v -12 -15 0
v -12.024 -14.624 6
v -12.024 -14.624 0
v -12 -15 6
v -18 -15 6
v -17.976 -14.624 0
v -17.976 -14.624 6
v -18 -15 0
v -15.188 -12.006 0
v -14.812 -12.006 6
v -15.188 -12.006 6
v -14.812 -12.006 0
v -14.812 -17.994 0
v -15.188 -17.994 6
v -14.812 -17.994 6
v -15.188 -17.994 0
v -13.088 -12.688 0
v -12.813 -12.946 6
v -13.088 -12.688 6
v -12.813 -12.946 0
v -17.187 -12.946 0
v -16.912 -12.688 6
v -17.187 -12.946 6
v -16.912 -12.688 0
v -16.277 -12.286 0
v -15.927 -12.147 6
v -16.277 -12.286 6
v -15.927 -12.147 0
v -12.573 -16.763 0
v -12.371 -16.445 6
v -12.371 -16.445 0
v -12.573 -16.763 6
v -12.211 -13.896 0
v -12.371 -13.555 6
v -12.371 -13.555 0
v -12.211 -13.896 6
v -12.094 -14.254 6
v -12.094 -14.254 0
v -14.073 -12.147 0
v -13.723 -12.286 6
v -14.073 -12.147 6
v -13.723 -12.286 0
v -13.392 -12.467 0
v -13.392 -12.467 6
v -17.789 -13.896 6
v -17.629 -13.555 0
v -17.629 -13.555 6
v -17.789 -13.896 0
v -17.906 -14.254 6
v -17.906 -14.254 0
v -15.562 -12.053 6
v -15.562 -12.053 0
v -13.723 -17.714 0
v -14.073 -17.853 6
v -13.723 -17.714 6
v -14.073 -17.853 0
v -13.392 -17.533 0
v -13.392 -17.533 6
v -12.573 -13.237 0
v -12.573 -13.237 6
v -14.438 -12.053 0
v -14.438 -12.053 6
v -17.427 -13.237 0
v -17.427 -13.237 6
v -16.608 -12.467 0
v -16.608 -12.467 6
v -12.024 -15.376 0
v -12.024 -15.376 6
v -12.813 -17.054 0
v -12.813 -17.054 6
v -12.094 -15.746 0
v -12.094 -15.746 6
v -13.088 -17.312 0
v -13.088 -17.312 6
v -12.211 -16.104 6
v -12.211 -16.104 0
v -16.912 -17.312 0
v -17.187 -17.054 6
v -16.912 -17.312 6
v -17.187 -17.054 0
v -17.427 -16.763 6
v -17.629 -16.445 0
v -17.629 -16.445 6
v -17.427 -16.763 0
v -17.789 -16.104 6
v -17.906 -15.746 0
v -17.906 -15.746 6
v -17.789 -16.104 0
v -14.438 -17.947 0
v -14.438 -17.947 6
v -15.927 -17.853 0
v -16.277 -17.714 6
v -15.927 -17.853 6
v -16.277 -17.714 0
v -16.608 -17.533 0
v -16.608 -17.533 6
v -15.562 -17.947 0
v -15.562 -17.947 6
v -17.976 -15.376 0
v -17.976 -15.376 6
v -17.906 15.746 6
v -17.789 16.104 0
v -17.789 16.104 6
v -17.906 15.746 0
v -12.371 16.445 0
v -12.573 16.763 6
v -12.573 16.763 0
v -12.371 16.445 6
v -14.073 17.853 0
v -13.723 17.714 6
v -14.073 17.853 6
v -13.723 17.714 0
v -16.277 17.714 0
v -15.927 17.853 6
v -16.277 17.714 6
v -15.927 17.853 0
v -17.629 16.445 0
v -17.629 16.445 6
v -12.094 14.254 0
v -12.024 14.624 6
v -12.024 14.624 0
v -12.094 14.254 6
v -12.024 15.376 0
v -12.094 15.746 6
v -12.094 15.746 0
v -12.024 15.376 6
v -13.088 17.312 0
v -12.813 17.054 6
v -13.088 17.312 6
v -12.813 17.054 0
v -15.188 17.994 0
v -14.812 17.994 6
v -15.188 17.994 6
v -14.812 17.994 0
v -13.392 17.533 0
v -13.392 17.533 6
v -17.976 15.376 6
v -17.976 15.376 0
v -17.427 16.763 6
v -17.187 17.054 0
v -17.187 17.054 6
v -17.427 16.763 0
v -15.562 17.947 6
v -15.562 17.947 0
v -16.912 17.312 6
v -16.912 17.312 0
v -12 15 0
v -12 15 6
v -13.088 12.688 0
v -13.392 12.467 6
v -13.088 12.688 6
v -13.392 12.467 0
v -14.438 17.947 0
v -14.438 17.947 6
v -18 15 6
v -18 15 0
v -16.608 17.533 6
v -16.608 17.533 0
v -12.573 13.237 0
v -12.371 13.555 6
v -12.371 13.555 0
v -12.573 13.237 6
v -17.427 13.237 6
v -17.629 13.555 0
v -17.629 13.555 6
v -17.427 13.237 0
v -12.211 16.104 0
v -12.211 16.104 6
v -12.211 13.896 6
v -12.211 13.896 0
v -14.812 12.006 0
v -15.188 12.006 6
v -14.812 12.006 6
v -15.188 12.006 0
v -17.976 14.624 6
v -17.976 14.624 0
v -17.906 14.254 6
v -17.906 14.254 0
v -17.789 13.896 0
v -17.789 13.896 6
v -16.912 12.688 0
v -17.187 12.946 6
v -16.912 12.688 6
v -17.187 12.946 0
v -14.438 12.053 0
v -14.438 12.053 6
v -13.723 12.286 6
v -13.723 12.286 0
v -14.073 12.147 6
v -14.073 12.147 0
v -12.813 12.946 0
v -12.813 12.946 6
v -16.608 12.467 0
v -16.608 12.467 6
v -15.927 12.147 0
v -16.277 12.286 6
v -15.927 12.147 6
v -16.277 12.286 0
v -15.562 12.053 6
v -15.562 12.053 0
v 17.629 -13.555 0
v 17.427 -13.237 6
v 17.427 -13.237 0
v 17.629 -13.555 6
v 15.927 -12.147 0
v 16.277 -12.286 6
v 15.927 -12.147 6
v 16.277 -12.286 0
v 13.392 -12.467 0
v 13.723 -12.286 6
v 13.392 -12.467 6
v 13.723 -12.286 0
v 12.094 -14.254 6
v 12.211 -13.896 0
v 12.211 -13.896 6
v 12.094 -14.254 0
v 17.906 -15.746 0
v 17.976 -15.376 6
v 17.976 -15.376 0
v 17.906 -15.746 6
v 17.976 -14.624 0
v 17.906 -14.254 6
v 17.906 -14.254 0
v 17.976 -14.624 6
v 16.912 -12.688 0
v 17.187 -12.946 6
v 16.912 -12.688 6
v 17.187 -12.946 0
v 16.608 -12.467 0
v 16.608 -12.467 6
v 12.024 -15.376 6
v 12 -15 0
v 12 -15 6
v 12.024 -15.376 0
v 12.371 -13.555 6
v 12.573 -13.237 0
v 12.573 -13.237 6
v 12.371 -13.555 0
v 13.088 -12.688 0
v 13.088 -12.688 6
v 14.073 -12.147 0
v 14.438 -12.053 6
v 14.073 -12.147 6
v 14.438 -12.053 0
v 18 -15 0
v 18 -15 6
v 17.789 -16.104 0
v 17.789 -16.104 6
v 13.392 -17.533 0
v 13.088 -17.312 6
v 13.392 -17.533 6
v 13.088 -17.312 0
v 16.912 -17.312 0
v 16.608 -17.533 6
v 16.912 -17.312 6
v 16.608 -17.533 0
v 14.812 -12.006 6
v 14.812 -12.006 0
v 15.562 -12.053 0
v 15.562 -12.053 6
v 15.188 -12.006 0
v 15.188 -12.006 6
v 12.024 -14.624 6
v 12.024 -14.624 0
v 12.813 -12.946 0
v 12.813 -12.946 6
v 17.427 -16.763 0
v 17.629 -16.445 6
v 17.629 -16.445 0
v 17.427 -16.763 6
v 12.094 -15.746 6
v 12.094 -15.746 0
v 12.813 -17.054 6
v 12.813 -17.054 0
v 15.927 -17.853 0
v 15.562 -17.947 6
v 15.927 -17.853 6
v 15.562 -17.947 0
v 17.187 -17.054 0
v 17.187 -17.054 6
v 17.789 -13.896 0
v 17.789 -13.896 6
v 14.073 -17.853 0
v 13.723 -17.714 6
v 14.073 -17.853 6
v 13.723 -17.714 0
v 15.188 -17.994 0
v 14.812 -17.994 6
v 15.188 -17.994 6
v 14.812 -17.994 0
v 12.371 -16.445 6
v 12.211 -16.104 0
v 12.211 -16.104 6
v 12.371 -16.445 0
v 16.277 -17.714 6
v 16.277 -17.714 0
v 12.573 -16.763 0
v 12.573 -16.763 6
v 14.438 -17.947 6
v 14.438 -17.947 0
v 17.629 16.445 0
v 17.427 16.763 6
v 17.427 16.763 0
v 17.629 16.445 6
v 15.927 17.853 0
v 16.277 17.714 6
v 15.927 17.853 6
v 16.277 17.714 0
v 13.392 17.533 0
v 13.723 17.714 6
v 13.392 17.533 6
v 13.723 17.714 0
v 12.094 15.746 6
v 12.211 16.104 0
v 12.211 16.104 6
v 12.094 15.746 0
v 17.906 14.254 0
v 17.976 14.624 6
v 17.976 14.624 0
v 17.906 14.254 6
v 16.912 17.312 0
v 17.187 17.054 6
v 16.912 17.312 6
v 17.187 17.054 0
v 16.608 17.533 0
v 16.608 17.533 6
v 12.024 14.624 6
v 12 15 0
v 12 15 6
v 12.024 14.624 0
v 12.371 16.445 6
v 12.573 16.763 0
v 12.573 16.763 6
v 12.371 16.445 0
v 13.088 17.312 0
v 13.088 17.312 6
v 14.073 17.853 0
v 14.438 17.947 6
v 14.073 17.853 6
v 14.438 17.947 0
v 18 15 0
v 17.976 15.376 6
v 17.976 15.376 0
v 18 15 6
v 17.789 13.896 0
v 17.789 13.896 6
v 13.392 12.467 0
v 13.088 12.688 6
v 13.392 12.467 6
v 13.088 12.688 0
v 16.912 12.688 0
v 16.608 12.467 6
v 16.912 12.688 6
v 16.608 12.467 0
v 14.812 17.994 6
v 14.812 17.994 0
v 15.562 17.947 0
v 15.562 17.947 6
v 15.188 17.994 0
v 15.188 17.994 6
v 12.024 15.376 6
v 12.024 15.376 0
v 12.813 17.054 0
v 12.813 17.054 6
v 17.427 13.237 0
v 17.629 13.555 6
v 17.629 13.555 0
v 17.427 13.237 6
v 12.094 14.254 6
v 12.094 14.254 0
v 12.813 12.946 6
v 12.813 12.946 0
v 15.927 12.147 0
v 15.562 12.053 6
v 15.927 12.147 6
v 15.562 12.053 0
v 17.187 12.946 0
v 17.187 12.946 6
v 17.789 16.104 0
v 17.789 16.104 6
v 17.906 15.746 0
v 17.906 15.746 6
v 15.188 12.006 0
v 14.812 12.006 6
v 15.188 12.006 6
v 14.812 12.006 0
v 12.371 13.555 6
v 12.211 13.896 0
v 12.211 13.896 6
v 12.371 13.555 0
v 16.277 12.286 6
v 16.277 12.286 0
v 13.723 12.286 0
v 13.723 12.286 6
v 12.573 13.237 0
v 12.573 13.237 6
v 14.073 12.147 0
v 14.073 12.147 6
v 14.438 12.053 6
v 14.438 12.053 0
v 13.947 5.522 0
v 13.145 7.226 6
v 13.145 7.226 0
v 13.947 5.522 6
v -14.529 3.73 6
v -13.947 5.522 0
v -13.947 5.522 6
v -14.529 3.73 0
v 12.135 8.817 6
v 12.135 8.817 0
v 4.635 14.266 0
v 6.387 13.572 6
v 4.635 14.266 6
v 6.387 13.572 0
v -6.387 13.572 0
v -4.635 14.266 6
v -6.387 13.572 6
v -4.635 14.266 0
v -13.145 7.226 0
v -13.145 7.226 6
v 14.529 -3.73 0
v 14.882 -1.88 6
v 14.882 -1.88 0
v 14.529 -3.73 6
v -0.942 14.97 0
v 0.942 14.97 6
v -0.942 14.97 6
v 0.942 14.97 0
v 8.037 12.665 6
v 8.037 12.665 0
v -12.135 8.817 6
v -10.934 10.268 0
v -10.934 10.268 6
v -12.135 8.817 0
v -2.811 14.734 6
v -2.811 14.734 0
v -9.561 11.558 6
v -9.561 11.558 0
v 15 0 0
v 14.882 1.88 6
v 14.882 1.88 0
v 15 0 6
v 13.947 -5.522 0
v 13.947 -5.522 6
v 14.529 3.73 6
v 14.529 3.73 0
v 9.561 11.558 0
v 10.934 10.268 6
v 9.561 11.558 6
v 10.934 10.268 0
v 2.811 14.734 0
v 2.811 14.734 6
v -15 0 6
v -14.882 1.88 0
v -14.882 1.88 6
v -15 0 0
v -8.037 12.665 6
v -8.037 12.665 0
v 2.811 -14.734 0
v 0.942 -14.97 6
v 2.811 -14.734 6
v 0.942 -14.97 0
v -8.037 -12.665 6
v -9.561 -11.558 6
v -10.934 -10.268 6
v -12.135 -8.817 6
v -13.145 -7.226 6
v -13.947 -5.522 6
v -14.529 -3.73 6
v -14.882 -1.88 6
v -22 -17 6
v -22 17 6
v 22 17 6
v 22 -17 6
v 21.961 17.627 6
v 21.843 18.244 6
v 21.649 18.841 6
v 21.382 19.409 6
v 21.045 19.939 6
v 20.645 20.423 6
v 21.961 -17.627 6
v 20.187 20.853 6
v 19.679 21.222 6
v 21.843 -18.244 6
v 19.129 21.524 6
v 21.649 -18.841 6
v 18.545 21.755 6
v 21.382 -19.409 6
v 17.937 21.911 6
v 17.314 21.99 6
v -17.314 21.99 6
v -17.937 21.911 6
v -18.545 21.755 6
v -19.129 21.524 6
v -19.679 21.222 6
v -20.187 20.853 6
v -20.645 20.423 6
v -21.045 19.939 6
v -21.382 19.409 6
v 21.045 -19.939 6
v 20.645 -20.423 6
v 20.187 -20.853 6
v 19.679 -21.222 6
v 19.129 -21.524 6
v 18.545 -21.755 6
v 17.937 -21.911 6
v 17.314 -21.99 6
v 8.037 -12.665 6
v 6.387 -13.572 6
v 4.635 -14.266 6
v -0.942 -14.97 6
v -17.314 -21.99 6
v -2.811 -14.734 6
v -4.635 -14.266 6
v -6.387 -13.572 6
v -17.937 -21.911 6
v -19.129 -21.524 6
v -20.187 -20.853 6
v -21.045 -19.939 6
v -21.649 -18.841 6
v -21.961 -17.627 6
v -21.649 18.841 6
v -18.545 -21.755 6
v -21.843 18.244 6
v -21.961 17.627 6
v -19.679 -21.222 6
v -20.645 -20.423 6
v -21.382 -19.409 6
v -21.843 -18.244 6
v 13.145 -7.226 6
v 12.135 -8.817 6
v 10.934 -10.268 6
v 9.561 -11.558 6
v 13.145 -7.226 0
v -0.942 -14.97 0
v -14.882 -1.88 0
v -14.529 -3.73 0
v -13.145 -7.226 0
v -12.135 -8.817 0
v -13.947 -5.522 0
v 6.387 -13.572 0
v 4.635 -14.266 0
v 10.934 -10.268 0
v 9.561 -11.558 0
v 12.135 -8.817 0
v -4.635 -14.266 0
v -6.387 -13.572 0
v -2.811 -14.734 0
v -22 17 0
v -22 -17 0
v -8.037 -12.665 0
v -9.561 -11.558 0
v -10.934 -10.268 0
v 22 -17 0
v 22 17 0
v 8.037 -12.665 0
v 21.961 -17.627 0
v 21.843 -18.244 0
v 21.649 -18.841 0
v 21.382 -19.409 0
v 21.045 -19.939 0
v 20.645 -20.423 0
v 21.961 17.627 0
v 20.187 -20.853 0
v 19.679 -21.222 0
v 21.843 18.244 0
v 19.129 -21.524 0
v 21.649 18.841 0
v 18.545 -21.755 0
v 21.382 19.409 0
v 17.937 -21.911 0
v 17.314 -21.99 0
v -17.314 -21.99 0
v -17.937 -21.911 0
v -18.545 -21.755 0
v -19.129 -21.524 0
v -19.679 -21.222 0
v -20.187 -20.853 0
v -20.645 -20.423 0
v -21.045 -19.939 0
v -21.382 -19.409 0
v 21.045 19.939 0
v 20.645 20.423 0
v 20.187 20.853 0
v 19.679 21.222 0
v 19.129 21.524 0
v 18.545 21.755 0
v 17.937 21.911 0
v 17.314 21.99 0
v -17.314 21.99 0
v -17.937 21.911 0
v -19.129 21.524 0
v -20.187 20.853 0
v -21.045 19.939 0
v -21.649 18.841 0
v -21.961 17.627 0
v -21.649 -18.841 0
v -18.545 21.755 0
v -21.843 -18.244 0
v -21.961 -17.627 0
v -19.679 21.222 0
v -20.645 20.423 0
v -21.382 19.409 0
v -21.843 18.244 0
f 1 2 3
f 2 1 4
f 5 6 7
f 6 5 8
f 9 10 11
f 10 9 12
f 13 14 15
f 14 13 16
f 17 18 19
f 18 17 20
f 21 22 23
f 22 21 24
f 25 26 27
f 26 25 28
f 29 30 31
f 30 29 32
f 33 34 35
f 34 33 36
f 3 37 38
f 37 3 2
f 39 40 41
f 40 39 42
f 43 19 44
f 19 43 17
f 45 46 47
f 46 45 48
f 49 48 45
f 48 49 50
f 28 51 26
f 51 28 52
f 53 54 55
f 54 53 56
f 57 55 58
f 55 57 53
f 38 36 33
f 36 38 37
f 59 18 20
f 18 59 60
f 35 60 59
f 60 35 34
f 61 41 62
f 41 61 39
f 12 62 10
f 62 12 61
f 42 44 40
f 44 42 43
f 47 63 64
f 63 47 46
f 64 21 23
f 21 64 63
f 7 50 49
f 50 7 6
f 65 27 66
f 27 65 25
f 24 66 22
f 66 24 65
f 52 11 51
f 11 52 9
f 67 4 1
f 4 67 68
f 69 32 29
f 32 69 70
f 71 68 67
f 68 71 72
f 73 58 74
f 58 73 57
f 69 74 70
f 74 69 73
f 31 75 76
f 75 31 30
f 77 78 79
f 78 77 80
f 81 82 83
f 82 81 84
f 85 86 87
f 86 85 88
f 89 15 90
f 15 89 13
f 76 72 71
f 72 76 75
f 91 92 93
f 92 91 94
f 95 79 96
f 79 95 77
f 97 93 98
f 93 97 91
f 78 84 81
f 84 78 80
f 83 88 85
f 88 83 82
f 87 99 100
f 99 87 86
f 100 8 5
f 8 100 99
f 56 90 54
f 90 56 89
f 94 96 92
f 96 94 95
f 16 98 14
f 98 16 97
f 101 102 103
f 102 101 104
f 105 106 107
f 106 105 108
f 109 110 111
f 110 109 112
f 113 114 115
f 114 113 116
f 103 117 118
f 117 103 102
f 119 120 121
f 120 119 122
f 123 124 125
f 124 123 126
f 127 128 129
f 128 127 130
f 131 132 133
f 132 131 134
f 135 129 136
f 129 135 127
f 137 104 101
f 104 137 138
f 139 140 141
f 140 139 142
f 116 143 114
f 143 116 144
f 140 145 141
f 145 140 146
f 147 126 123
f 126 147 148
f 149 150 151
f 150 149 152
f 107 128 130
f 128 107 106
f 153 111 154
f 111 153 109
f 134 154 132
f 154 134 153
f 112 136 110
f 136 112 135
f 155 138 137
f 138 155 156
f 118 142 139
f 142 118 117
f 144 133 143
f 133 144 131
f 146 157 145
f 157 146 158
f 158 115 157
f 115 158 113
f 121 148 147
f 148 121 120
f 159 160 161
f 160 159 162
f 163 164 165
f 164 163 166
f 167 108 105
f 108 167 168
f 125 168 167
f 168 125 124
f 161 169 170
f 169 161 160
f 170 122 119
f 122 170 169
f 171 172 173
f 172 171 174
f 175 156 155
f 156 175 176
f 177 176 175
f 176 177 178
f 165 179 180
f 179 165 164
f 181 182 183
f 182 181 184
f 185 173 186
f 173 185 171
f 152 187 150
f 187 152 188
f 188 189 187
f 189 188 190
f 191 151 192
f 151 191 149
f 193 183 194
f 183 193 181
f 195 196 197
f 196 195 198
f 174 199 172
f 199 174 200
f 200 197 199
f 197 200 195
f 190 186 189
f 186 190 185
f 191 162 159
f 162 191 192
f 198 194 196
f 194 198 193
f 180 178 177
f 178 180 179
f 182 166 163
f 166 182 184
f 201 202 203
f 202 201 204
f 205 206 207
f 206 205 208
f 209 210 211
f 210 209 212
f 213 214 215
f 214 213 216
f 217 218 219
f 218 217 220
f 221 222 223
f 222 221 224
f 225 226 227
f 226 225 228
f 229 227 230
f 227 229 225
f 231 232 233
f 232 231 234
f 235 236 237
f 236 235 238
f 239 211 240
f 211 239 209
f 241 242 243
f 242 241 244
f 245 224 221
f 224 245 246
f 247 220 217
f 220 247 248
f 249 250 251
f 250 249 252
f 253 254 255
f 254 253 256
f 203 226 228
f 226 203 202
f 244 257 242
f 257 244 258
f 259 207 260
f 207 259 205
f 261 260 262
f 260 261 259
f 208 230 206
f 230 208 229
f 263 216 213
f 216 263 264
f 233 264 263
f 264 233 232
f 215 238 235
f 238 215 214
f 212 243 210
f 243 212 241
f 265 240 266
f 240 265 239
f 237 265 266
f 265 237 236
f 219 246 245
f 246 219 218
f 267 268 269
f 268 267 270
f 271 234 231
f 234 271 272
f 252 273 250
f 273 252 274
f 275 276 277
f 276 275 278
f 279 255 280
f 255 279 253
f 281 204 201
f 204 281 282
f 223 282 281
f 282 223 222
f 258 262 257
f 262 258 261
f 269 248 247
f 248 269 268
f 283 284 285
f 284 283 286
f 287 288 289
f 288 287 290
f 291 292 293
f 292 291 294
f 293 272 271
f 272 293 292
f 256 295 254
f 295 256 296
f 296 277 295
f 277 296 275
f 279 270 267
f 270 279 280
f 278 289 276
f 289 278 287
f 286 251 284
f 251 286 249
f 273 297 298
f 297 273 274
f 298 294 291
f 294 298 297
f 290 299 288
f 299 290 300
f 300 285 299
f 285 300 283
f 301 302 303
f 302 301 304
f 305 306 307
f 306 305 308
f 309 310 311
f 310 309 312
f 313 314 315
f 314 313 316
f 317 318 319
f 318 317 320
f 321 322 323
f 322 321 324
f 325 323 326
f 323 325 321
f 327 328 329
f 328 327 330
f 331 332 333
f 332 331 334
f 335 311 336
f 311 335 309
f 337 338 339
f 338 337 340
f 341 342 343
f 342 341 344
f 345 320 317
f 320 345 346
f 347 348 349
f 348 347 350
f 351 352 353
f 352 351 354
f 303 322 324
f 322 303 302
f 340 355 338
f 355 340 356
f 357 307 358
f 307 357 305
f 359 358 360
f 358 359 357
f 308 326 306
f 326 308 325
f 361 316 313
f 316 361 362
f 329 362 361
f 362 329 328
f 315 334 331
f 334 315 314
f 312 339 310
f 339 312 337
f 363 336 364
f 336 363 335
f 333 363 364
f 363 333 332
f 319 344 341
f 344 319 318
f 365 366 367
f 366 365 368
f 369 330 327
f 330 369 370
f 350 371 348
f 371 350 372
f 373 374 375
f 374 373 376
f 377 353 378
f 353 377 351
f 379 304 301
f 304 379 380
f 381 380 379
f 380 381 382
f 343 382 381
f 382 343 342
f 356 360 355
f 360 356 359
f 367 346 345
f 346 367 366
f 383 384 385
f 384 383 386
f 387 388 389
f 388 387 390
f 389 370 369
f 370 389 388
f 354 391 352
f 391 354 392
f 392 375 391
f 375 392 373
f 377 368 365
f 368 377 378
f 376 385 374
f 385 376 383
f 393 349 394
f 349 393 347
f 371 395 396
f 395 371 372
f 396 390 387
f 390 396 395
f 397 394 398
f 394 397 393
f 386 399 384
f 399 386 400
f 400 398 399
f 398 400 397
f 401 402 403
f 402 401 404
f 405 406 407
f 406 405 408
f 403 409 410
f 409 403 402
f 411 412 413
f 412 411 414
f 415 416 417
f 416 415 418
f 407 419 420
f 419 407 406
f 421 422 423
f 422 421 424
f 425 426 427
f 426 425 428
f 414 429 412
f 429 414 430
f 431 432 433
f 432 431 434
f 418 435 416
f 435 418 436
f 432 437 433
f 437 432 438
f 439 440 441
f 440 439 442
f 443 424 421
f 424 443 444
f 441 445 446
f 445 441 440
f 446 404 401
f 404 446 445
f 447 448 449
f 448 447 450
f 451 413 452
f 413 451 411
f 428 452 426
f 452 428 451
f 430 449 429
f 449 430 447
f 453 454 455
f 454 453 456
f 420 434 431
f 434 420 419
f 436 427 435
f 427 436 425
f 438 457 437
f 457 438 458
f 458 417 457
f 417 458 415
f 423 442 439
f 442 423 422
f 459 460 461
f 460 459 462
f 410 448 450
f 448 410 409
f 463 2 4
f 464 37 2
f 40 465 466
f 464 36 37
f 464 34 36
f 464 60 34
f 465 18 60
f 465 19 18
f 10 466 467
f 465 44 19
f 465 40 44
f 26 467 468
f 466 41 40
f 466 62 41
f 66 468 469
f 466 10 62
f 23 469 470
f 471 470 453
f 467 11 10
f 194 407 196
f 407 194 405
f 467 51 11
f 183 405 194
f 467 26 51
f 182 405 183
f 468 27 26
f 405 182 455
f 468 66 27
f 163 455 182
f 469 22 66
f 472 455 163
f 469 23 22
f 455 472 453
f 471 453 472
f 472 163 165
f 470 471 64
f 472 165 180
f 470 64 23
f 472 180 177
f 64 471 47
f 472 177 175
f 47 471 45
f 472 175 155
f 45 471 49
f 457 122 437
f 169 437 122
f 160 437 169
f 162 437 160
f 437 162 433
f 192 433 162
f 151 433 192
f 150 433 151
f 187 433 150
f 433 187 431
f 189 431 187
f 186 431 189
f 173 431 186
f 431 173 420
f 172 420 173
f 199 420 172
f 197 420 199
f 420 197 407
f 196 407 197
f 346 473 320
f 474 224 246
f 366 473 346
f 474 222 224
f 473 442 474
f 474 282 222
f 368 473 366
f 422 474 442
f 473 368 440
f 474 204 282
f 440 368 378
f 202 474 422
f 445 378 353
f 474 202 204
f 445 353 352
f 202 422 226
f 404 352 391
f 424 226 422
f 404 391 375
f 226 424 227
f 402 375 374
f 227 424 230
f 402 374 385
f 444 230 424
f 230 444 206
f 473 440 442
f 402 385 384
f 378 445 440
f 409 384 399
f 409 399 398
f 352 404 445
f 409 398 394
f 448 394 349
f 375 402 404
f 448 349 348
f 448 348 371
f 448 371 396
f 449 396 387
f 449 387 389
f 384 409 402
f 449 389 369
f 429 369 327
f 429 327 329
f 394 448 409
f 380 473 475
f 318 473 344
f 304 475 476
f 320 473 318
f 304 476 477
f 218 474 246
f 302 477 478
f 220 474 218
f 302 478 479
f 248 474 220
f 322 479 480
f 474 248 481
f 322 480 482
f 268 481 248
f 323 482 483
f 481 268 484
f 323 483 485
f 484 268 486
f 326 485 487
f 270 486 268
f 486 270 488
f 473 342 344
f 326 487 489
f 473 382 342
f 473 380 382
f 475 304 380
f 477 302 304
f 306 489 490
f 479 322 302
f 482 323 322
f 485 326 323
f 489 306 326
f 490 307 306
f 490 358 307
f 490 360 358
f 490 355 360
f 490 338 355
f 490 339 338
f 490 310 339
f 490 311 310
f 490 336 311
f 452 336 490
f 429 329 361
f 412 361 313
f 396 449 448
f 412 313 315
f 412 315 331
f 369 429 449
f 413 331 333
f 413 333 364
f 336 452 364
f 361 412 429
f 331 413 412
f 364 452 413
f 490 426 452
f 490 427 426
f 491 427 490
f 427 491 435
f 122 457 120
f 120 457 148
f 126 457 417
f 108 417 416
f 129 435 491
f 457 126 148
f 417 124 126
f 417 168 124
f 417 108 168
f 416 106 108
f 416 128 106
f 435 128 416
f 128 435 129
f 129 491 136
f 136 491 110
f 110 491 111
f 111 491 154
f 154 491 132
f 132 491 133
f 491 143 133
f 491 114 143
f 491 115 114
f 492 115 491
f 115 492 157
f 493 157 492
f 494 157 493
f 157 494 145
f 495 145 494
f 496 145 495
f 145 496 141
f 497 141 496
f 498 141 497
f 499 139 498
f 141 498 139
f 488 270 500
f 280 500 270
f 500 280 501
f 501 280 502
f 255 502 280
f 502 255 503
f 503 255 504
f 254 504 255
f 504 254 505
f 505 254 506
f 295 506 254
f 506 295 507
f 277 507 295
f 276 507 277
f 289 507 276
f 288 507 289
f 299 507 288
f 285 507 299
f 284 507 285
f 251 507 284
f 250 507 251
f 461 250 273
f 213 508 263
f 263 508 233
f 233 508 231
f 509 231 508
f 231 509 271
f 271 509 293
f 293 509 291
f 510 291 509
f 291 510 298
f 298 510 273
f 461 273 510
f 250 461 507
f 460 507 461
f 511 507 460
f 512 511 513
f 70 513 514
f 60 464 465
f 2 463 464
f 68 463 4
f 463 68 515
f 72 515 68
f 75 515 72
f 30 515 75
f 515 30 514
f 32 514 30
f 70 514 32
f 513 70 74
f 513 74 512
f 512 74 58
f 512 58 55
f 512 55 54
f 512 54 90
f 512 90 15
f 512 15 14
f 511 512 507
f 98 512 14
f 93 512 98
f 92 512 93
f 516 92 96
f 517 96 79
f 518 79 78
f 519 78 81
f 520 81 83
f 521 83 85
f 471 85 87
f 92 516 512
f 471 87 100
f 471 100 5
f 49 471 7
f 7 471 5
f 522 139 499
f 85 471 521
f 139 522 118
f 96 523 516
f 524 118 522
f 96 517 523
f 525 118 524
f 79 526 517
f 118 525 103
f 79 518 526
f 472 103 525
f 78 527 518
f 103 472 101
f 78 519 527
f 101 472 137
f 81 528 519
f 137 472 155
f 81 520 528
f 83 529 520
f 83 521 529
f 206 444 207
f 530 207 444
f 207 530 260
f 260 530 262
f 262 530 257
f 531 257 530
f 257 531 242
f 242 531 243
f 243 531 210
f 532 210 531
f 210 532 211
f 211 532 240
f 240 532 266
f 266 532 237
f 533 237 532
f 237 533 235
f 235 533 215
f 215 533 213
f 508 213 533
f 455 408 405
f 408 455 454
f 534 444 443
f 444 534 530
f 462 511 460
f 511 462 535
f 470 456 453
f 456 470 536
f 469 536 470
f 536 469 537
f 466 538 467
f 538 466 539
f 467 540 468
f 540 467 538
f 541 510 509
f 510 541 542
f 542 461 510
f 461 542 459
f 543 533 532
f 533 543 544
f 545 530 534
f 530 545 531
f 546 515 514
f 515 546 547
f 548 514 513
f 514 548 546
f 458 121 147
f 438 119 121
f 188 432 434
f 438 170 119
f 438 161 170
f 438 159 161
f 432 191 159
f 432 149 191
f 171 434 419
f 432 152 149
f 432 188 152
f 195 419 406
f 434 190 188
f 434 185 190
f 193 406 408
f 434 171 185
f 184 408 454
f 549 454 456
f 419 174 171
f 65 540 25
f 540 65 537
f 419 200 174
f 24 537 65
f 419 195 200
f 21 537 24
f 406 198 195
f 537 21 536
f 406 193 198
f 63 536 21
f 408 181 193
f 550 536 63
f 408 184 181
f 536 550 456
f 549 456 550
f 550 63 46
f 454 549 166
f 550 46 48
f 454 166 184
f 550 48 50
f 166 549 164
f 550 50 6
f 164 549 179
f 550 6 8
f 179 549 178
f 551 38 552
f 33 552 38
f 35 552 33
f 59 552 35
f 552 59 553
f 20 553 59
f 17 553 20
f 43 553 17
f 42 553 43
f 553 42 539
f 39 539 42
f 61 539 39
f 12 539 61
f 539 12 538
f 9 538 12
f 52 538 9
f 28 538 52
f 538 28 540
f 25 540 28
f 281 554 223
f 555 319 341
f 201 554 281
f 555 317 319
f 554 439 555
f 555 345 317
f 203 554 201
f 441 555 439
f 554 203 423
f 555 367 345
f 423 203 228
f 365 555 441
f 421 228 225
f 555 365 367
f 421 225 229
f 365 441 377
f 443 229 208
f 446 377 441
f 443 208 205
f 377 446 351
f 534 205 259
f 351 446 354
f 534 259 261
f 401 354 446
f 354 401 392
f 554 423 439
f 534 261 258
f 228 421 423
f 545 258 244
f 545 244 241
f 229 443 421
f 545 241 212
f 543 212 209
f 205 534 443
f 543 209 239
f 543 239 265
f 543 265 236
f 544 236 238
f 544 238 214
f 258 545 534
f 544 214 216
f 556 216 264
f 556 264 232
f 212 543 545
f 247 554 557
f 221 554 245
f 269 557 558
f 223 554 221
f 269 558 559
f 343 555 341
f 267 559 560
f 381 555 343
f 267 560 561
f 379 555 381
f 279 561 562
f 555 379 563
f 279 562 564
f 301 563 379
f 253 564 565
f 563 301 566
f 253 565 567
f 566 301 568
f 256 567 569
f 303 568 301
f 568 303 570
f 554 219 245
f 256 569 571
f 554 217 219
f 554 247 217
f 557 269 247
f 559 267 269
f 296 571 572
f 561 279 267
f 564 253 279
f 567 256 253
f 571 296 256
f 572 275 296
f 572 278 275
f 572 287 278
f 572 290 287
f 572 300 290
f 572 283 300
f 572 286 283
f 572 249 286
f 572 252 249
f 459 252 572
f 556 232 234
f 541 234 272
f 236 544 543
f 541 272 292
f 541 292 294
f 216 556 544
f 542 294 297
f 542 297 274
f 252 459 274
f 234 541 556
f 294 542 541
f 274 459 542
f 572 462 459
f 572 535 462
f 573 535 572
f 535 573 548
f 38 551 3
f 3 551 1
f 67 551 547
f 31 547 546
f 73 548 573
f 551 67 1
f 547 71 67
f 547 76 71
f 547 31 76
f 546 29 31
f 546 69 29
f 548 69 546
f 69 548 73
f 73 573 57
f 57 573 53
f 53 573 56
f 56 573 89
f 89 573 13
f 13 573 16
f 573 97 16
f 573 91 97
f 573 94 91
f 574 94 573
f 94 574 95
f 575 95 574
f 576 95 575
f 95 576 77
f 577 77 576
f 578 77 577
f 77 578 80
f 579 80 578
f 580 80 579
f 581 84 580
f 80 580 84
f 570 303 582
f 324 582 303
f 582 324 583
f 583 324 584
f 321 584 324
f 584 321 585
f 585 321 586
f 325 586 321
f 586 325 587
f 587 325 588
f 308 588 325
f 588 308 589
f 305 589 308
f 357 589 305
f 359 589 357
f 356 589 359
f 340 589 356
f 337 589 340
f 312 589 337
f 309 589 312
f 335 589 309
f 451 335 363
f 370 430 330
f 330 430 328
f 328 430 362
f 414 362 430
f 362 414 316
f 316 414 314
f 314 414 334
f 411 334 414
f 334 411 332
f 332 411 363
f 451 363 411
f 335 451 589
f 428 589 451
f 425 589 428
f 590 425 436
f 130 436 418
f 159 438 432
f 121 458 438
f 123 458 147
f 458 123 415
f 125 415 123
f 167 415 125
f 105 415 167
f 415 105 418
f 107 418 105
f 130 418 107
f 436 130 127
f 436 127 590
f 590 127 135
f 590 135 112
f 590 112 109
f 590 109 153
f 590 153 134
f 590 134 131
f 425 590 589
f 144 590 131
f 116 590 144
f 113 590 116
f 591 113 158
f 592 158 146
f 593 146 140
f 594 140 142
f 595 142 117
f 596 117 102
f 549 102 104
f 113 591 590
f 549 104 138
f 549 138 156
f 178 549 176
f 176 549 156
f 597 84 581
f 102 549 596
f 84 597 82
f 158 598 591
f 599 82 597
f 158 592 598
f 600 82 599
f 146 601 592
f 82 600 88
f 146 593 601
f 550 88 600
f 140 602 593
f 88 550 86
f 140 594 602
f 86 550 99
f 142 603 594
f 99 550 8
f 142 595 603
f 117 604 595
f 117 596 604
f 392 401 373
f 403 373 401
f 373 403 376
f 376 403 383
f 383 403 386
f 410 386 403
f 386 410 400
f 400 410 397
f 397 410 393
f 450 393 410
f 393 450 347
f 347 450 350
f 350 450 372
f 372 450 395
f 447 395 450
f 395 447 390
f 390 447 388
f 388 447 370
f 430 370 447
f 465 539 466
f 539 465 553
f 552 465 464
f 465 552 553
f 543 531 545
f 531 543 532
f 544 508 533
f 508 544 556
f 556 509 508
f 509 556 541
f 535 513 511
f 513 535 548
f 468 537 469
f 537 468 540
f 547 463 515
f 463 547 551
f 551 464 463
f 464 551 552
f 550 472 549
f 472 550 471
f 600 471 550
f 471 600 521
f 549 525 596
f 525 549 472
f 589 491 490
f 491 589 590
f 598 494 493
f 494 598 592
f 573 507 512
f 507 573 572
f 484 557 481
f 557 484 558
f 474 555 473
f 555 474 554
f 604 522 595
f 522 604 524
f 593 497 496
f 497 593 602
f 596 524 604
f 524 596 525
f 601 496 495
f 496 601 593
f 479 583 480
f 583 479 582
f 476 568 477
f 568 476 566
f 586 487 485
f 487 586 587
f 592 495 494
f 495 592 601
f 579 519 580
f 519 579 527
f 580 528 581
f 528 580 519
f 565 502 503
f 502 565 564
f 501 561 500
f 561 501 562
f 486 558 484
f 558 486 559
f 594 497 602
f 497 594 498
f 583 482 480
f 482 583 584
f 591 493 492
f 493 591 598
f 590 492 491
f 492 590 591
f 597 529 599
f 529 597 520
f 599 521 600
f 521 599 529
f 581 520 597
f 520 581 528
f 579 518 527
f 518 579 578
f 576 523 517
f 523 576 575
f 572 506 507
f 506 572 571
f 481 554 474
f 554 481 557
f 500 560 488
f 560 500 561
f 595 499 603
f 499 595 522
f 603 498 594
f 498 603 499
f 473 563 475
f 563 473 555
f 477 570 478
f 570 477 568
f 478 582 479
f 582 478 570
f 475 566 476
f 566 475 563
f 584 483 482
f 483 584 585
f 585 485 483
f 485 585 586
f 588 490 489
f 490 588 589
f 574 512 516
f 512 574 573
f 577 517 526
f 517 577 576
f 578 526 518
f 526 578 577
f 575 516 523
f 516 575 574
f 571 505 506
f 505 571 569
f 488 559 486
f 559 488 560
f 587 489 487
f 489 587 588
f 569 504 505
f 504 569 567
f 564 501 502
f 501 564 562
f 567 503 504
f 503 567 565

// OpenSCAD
$fn = 50;


difference() {
	union() {
		hull() {
			translate(v = [-17.0000000000, 17.0000000000, 0]) {
				cylinder(h = 6, r = 5);
			}
			translate(v = [17.0000000000, 17.0000000000, 0]) {
				cylinder(h = 6, r = 5);
			}
			translate(v = [-17.0000000000, -17.0000000000, 0]) {
				cylinder(h = 6, r = 5);
			}
			translate(v = [17.0000000000, -17.0000000000, 0]) {
				cylinder(h = 6, r = 5);
			}
		}
	}
	union() {
		#translate(v = [-15.0000000000, -15.0000000000, -100.0000000000]) {
			cylinder(h = 200, r = 3.0000000000);
		}
		#translate(v = [-15.0000000000, 15.0000000000, -100.0000000000]) {
			cylinder(h = 200, r = 3.0000000000);
		}
		#translate(v = [15.0000000000, -15.0000000000, -100.0000000000]) {
			cylinder(h = 200, r = 3.0000000000);
		}
		#translate(v = [15.0000000000, 15.0000000000, -100.0000000000]) {
			cylinder(h = 200, r = 3.0000000000);
		}
		#cylinder(h = 6, r = 15.0000000000);
	}
}
